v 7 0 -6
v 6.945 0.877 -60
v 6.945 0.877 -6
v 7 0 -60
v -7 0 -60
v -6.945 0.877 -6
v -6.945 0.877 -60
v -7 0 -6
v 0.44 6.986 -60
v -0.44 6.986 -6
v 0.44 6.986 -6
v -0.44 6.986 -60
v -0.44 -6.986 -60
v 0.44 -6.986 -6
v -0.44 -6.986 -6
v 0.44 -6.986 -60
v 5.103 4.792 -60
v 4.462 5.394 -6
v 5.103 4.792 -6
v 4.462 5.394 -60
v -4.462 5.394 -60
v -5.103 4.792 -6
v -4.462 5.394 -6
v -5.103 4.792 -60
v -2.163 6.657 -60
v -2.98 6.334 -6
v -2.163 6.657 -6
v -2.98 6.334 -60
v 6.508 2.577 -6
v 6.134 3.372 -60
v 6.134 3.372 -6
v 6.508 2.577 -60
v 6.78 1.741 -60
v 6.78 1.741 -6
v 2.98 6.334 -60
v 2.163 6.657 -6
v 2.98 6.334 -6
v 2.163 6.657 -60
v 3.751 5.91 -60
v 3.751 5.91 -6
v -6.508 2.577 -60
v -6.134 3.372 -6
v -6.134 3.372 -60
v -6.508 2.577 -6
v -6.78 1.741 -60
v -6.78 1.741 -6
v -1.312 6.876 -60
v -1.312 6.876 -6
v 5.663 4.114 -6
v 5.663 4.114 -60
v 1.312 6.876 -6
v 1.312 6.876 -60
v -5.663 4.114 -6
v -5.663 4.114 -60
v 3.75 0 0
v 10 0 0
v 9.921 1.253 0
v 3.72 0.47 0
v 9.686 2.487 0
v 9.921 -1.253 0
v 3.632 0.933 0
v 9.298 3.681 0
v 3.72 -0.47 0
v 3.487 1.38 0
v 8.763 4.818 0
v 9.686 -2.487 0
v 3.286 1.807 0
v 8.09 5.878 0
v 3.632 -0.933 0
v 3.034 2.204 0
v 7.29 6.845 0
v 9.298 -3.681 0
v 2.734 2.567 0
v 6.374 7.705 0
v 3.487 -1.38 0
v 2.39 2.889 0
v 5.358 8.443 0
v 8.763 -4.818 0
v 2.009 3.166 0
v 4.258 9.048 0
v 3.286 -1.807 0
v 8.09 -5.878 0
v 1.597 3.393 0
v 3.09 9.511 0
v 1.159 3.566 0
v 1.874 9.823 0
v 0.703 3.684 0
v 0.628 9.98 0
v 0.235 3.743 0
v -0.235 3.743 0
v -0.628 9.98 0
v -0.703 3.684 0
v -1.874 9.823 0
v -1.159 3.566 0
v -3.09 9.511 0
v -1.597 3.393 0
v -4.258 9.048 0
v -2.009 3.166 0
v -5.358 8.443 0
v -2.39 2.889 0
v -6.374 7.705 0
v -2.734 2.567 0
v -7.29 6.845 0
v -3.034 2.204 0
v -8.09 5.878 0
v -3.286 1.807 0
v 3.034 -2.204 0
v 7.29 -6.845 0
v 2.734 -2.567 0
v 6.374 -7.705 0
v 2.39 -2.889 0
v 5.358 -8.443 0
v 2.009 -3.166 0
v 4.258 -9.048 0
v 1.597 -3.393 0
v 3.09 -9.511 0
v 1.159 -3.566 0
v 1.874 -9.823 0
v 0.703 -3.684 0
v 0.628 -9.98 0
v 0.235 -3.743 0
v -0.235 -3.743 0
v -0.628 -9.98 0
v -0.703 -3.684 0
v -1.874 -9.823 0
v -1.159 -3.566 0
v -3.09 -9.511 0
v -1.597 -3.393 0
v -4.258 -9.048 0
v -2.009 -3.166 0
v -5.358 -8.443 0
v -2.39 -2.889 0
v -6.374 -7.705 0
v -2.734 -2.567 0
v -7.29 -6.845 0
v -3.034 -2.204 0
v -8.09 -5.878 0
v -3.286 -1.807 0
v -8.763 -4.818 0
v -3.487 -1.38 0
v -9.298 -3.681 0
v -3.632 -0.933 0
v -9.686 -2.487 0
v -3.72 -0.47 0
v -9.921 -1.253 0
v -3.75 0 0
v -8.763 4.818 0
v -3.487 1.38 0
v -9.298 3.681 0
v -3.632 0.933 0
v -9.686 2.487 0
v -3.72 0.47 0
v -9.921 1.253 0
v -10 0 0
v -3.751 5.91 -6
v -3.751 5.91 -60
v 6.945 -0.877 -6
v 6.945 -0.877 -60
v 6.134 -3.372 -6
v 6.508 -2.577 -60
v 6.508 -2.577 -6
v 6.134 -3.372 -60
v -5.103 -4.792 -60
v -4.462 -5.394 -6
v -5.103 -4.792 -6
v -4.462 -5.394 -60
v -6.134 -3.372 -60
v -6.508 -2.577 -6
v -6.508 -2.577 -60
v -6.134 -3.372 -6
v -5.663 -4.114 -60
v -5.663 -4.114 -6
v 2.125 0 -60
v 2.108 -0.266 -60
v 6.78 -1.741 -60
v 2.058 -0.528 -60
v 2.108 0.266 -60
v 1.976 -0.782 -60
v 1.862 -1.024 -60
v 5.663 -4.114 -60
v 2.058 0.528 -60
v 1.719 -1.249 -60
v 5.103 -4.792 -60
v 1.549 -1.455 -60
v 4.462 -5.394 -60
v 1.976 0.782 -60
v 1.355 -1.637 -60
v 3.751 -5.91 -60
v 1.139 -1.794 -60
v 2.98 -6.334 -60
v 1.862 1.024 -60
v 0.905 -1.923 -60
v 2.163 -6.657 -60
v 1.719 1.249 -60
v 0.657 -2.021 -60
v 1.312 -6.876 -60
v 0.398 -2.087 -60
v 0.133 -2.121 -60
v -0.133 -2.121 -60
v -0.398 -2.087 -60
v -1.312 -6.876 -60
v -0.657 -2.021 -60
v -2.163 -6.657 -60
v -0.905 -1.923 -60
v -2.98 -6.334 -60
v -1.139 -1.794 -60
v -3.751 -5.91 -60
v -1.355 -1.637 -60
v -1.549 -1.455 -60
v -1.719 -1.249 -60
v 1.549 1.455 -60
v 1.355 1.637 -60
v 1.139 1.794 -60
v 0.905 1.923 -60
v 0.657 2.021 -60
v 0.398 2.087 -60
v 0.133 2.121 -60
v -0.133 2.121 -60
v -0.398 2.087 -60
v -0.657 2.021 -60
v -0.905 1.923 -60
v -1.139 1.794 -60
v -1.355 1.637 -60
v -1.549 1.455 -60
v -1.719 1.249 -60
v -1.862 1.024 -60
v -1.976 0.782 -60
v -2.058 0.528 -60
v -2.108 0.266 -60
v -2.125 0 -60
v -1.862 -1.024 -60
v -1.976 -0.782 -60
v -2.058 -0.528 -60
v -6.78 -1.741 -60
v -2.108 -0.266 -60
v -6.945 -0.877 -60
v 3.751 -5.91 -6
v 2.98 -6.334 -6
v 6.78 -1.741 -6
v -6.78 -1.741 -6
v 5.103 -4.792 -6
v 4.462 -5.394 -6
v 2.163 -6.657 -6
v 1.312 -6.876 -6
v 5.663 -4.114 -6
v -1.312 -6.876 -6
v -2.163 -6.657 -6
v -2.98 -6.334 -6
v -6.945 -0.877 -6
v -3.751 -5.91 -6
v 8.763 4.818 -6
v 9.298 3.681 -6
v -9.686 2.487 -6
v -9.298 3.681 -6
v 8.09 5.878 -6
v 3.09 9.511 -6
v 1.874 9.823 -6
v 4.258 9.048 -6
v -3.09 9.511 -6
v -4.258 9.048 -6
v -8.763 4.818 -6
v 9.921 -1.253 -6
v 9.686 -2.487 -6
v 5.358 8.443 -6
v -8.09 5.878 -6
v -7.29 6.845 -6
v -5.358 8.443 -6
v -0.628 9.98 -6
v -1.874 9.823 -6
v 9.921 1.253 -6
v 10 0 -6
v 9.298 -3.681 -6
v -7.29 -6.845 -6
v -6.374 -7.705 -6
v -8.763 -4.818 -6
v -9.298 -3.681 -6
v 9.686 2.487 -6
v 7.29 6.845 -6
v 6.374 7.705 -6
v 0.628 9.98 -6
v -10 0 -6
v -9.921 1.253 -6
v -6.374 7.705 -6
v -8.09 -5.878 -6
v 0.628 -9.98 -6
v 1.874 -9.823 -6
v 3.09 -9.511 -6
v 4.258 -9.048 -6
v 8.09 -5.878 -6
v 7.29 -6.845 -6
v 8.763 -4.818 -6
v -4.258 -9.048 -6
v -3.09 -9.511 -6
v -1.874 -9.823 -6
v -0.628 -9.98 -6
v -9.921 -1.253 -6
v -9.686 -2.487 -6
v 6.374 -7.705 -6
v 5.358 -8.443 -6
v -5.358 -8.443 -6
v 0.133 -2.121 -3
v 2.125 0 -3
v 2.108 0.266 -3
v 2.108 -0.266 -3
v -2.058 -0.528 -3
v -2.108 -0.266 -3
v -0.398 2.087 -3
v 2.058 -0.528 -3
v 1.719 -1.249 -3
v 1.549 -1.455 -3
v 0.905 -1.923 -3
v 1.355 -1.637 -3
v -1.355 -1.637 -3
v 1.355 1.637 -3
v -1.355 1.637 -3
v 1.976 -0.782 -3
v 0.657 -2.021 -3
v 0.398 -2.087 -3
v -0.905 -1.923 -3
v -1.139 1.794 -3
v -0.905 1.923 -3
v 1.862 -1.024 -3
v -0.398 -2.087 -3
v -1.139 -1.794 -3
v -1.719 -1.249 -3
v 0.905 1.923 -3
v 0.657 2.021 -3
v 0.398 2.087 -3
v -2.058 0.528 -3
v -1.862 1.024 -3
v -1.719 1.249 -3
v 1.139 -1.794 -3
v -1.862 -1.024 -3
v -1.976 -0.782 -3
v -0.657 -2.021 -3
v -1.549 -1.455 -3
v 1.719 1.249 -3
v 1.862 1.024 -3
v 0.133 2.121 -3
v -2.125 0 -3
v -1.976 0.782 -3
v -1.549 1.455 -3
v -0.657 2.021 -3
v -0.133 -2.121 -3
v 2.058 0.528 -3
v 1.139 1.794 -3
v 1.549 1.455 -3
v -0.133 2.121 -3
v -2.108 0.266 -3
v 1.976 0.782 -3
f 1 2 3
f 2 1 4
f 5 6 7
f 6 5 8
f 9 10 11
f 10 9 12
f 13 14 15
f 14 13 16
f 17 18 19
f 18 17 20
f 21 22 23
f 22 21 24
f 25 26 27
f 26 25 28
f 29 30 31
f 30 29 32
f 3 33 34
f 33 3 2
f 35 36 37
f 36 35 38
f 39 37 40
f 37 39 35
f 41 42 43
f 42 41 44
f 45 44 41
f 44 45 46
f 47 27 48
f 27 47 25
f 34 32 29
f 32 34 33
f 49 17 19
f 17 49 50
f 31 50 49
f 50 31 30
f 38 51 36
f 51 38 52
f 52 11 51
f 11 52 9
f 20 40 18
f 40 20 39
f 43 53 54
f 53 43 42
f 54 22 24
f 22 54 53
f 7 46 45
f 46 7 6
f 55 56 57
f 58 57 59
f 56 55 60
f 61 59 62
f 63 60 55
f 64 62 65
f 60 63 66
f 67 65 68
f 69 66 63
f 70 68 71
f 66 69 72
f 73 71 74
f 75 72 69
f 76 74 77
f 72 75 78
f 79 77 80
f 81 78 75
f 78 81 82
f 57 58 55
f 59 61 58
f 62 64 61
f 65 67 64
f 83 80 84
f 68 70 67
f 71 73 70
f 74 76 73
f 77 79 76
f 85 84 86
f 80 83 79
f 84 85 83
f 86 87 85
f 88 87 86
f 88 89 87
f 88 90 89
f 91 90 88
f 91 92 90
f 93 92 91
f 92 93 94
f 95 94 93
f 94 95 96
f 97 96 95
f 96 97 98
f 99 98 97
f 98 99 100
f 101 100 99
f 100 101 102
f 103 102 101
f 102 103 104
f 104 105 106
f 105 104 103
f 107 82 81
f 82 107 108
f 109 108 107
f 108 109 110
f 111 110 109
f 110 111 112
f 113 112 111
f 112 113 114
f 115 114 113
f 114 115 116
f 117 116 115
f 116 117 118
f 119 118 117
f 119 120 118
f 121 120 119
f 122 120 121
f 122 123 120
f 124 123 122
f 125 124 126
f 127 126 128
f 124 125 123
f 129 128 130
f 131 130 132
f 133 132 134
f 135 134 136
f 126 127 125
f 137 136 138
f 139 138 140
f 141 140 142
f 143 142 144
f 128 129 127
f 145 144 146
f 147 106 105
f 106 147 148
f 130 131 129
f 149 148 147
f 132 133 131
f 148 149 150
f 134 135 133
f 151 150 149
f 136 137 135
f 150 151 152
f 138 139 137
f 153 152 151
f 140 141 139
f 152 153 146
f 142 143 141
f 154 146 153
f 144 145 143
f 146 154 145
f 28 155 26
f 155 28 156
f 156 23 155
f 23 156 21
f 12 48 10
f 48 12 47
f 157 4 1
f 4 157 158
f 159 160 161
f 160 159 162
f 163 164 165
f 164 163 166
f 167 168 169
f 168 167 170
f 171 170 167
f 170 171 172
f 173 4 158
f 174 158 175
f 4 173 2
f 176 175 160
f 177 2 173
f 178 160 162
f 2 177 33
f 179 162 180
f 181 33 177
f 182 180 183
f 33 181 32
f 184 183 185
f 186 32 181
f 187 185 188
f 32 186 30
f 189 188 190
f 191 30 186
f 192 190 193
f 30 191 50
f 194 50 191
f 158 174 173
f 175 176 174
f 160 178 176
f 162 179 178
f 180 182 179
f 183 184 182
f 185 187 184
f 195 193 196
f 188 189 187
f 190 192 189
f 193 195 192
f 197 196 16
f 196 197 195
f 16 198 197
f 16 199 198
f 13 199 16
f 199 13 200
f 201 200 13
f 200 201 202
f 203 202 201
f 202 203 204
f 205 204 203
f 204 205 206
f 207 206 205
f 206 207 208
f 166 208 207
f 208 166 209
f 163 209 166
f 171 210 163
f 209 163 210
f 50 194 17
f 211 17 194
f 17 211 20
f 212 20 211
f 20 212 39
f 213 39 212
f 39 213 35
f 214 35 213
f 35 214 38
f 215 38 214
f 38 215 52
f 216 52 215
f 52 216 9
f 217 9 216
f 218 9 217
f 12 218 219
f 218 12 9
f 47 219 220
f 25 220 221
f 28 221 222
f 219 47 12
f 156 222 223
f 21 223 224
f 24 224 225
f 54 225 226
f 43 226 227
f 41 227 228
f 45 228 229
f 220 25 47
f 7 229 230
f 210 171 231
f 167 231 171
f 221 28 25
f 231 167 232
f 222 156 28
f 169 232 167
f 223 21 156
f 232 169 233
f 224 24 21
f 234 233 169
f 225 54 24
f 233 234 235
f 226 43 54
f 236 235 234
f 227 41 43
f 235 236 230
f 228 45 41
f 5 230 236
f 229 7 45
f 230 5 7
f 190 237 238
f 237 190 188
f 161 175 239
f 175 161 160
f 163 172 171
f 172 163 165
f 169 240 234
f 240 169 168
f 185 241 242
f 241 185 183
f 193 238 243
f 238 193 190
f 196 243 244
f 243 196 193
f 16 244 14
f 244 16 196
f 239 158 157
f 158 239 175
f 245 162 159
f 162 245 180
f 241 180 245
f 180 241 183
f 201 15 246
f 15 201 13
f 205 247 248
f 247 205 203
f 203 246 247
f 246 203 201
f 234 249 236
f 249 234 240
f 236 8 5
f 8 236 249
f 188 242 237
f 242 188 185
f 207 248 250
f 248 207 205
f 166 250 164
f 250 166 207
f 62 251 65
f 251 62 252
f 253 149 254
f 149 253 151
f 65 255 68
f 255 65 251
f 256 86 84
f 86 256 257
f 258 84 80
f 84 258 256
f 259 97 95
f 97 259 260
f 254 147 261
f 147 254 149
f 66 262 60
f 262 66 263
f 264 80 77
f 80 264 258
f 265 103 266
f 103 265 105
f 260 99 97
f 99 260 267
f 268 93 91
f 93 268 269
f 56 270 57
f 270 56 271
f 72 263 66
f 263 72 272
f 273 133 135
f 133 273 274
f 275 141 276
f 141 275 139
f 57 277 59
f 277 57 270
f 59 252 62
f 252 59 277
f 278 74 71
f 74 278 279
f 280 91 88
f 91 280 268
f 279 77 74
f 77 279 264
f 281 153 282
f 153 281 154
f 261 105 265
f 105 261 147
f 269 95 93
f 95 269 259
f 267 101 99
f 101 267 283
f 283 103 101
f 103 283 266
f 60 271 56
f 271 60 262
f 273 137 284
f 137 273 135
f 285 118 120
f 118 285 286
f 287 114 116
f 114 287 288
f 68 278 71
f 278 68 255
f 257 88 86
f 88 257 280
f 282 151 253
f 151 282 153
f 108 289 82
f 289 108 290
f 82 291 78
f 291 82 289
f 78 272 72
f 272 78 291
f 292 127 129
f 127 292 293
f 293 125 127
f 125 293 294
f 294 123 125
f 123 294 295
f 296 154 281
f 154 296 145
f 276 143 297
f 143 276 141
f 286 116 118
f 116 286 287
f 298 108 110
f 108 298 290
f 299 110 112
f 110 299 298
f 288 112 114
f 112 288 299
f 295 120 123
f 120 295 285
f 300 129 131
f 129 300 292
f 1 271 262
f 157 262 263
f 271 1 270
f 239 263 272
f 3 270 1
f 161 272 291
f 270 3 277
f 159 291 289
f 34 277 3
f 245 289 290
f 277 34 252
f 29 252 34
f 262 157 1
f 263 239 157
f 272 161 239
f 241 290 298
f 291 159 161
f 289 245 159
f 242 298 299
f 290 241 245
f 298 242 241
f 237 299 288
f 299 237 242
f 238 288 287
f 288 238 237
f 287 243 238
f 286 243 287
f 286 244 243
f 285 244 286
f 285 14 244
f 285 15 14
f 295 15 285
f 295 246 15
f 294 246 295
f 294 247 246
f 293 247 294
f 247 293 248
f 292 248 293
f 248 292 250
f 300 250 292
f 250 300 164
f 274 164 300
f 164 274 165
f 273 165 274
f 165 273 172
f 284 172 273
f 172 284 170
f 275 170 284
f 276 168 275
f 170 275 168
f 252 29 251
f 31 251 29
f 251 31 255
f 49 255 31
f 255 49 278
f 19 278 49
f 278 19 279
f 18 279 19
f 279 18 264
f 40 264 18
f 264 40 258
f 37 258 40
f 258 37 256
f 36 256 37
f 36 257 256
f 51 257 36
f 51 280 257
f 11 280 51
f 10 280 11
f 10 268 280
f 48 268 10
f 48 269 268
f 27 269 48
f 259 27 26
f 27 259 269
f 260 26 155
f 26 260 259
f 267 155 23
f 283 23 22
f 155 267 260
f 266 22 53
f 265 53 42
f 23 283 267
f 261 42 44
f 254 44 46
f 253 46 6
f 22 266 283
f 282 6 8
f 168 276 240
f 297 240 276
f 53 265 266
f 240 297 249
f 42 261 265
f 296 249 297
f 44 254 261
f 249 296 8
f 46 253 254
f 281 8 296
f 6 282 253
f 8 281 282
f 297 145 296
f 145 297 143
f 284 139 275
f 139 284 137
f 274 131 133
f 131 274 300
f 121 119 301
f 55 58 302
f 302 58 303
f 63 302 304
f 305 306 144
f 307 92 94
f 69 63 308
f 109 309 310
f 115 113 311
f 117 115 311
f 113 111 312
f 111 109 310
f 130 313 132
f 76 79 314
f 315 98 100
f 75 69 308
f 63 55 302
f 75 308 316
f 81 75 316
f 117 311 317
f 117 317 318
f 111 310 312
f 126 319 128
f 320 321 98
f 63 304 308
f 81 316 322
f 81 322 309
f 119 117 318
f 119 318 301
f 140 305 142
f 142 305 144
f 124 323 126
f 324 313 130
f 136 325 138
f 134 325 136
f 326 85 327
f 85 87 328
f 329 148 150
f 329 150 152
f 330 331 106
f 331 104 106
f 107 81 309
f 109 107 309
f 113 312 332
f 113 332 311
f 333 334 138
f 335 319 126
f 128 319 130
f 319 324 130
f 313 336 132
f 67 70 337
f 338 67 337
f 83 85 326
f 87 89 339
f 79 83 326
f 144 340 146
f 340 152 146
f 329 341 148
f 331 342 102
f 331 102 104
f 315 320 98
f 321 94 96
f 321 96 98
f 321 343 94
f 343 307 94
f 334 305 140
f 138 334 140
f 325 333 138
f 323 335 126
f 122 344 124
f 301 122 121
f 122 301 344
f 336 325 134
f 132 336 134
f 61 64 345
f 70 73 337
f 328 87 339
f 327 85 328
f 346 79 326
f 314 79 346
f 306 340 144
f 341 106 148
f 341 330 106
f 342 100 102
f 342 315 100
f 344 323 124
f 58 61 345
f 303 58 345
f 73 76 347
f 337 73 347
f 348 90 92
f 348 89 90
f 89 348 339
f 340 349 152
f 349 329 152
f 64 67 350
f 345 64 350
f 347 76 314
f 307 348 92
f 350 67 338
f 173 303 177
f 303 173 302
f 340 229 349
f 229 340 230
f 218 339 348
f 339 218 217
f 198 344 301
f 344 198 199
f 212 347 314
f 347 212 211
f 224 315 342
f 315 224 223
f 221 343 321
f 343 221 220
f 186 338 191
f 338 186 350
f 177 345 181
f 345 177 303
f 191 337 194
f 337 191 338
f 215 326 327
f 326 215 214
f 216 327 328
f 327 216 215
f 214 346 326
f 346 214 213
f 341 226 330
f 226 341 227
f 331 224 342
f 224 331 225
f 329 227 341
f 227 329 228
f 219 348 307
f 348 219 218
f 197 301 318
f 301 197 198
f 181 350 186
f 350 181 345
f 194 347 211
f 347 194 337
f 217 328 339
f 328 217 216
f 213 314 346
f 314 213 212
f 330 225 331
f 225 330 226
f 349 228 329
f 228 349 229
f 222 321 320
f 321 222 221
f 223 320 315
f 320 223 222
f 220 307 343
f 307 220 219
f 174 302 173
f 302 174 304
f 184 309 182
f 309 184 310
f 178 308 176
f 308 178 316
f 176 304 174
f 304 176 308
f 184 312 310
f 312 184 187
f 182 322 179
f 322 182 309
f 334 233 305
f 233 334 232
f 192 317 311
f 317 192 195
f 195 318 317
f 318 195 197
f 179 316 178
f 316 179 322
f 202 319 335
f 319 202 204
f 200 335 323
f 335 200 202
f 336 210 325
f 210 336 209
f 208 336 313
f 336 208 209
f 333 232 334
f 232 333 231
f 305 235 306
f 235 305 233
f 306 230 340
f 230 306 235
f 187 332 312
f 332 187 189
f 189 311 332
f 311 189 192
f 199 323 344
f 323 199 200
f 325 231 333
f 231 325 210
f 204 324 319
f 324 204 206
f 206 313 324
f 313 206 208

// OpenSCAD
$fn = 50;


difference() {
	union() {
		translate(v = [0, 0, -60.0000000000]) {
			cylinder(h = 60, r = 7.0000000000);
		}
		translate(v = [0, 0, -6.0000000000]) {
			cylinder(h = 6, r = 10.0000000000);
		}
	}
	union() {
		translate(v = [0, 0, 0]) {
			rotate(a = [0, 0, 0]) {
				difference() {
					union() {
						#translate(v = [0, 0, -60.0000000000]) {
							cylinder(h = 60, r = 2.0000000000);
						}
						#translate(v = [0, 0, -3]) {
							cylinder(h = 3, r = 7.0000000000, r1 = 2.1250000000, r2 = 3.7500000000);
						}
						#translate(v = [0, 0, -60.0000000000]) {
							cylinder(h = 60, r = 2.1250000000);
						}
						#translate(v = [0, 0, -60.0000000000]) {
							cylinder(h = 60, r = 2.0000000000);
						}
					}
					union();
				}
			}
		}
	}
}
